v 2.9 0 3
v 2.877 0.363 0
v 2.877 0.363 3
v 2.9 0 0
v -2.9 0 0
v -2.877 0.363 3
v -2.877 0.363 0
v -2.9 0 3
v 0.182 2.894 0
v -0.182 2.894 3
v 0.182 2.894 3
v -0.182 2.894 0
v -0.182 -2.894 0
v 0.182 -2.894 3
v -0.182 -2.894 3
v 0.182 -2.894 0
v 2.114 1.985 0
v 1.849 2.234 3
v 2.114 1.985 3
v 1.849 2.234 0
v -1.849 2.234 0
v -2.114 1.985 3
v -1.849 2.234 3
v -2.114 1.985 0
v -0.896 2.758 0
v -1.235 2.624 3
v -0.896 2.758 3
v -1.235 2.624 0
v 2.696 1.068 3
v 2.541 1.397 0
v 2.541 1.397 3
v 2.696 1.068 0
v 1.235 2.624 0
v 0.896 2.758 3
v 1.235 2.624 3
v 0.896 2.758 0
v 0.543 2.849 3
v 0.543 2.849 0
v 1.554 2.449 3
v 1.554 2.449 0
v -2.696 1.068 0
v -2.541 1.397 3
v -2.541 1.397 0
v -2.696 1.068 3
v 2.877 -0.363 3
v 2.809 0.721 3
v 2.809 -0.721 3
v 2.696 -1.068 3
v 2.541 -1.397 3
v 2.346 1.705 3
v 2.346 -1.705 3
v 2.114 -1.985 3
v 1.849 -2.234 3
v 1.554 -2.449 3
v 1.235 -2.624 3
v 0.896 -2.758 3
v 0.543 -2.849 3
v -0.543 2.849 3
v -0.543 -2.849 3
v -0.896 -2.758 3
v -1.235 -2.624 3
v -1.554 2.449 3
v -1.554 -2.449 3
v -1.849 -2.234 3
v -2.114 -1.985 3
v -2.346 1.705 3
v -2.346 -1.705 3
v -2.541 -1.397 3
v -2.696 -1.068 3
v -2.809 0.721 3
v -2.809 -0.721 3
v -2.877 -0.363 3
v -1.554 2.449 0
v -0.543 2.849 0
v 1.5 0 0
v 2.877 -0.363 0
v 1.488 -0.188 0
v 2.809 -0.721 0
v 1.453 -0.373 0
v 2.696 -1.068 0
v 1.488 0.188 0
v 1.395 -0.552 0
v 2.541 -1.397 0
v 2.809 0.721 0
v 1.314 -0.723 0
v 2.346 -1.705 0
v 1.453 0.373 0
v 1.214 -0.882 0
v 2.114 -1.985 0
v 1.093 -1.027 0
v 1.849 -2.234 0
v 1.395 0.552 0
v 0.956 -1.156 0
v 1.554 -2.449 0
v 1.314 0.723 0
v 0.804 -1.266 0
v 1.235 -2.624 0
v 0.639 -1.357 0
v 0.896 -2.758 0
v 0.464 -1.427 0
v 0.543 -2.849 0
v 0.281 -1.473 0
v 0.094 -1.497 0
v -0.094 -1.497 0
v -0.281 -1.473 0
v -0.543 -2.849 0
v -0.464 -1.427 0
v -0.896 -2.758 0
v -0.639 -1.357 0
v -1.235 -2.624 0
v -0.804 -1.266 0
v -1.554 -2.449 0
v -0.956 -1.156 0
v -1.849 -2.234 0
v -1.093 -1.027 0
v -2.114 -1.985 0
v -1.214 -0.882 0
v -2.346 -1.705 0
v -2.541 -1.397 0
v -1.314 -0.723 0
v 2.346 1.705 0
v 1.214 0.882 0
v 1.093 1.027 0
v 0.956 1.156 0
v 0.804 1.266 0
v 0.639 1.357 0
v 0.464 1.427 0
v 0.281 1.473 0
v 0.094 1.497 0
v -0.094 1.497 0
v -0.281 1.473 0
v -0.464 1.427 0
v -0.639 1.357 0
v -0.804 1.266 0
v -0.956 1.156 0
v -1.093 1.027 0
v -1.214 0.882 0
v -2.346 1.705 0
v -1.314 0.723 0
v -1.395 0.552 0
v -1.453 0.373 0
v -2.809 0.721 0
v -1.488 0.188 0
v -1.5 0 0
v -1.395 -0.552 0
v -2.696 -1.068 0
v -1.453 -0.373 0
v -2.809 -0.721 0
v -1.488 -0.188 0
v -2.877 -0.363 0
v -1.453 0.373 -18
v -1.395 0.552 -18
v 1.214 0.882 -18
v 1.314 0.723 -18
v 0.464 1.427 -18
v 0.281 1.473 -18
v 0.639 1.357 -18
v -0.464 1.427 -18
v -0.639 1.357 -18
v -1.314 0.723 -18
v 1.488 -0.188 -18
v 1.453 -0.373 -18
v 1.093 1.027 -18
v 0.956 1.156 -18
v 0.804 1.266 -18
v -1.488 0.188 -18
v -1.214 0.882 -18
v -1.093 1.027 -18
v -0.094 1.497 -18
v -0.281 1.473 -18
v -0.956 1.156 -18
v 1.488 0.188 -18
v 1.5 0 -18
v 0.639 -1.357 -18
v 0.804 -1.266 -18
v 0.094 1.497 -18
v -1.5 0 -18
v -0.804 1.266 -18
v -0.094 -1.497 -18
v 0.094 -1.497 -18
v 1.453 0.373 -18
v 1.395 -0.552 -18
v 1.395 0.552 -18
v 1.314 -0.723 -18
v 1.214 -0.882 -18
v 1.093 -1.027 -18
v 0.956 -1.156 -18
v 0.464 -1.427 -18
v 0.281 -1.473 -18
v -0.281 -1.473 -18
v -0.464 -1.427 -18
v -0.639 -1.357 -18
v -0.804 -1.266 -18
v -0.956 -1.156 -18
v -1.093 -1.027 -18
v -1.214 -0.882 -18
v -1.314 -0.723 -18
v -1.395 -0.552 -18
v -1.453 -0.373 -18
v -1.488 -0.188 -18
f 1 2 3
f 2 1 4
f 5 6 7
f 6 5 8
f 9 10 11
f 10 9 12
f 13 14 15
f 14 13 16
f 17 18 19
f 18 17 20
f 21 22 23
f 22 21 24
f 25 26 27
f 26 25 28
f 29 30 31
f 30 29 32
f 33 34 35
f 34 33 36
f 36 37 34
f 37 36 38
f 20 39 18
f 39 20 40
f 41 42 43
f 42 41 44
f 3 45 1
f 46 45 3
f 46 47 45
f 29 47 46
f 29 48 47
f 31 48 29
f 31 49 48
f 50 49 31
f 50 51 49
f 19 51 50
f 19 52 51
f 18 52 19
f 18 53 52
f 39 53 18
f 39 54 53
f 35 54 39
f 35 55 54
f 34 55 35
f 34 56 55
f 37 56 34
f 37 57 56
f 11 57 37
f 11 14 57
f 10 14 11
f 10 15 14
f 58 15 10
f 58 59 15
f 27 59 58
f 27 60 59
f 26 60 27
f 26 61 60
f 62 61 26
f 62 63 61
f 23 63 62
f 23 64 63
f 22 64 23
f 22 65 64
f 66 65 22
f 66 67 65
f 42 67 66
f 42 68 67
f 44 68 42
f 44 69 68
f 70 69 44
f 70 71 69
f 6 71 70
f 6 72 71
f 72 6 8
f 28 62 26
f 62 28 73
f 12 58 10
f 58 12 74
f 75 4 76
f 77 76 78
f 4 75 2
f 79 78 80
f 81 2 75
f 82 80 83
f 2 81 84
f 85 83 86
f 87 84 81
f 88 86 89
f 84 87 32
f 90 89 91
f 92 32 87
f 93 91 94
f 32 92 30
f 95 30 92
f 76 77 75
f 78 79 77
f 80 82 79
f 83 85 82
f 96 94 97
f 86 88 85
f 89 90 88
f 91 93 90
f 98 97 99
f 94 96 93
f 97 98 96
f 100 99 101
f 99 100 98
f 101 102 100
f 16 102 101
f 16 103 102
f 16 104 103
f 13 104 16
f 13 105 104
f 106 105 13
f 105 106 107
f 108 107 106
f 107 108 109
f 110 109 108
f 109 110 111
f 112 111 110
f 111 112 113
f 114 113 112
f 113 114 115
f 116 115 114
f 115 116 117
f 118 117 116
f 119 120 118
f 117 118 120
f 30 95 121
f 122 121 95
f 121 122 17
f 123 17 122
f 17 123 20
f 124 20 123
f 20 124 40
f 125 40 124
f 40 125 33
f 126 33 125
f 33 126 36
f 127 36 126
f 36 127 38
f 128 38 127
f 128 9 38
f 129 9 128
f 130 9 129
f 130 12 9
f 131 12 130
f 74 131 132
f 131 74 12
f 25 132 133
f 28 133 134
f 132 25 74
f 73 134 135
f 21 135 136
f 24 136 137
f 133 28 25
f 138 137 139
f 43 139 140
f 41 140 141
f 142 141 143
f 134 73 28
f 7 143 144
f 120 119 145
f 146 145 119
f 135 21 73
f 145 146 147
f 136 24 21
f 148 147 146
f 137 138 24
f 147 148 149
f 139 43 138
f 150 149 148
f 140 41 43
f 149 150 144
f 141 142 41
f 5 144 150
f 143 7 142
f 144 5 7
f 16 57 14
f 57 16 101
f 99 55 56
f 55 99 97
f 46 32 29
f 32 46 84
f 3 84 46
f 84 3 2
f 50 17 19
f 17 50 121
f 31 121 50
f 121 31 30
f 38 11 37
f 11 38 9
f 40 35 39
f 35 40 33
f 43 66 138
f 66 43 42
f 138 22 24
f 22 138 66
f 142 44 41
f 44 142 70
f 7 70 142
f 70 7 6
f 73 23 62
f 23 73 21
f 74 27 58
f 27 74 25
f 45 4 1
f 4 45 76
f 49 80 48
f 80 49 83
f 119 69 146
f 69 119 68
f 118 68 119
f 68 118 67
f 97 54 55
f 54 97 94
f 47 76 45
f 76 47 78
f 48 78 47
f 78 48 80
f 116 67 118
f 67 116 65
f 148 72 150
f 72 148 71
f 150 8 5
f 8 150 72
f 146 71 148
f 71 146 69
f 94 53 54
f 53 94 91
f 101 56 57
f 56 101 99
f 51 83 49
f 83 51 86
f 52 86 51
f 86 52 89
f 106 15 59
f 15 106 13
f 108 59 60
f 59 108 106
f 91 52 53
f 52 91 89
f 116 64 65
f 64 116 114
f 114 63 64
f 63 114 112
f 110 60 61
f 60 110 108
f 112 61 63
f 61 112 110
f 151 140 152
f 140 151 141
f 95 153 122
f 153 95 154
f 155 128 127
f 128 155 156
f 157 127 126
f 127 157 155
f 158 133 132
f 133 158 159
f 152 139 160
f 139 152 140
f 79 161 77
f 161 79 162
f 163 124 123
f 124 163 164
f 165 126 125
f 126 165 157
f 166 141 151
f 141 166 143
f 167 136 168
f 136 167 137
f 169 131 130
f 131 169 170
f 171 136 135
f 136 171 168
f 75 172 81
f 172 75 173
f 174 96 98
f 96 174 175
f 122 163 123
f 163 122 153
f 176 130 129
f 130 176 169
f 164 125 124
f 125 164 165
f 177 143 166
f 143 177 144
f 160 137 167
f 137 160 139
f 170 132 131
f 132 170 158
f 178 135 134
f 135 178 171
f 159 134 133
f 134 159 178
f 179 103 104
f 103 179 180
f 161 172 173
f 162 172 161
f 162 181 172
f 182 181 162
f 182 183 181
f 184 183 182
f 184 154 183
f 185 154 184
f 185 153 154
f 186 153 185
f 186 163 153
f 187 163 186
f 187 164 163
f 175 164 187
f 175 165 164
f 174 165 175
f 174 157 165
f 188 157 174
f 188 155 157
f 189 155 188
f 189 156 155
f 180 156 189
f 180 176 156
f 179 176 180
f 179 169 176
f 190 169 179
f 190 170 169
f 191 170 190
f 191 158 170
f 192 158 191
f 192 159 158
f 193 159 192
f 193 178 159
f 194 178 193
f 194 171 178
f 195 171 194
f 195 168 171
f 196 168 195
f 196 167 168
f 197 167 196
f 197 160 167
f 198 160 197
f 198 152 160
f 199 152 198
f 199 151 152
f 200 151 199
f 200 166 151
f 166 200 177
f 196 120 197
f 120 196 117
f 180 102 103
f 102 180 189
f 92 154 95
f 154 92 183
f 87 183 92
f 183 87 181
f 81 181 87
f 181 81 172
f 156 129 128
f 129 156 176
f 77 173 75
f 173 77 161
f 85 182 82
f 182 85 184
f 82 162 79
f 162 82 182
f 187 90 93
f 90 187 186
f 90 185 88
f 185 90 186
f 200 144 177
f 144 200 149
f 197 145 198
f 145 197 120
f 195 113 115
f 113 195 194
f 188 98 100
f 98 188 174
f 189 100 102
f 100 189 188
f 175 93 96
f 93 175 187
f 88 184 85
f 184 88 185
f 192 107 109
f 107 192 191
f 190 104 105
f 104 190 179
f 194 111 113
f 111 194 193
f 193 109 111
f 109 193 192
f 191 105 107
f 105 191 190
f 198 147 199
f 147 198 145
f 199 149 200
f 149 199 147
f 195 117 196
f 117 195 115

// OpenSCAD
$fn = 50;


difference() {
	union() {
		translate(v = [0, 0, 0]) {
			rotate(a = [0, 0, 0]) {
				cylinder(h = 3, r = 2.9000000000);
			}
		}
		translate(v = [0, 0, -18]) {
			rotate(a = [0, 0, 0]) {
				cylinder(h = 18, r = 1.5000000000);
			}
		}
	}
	union();
}
